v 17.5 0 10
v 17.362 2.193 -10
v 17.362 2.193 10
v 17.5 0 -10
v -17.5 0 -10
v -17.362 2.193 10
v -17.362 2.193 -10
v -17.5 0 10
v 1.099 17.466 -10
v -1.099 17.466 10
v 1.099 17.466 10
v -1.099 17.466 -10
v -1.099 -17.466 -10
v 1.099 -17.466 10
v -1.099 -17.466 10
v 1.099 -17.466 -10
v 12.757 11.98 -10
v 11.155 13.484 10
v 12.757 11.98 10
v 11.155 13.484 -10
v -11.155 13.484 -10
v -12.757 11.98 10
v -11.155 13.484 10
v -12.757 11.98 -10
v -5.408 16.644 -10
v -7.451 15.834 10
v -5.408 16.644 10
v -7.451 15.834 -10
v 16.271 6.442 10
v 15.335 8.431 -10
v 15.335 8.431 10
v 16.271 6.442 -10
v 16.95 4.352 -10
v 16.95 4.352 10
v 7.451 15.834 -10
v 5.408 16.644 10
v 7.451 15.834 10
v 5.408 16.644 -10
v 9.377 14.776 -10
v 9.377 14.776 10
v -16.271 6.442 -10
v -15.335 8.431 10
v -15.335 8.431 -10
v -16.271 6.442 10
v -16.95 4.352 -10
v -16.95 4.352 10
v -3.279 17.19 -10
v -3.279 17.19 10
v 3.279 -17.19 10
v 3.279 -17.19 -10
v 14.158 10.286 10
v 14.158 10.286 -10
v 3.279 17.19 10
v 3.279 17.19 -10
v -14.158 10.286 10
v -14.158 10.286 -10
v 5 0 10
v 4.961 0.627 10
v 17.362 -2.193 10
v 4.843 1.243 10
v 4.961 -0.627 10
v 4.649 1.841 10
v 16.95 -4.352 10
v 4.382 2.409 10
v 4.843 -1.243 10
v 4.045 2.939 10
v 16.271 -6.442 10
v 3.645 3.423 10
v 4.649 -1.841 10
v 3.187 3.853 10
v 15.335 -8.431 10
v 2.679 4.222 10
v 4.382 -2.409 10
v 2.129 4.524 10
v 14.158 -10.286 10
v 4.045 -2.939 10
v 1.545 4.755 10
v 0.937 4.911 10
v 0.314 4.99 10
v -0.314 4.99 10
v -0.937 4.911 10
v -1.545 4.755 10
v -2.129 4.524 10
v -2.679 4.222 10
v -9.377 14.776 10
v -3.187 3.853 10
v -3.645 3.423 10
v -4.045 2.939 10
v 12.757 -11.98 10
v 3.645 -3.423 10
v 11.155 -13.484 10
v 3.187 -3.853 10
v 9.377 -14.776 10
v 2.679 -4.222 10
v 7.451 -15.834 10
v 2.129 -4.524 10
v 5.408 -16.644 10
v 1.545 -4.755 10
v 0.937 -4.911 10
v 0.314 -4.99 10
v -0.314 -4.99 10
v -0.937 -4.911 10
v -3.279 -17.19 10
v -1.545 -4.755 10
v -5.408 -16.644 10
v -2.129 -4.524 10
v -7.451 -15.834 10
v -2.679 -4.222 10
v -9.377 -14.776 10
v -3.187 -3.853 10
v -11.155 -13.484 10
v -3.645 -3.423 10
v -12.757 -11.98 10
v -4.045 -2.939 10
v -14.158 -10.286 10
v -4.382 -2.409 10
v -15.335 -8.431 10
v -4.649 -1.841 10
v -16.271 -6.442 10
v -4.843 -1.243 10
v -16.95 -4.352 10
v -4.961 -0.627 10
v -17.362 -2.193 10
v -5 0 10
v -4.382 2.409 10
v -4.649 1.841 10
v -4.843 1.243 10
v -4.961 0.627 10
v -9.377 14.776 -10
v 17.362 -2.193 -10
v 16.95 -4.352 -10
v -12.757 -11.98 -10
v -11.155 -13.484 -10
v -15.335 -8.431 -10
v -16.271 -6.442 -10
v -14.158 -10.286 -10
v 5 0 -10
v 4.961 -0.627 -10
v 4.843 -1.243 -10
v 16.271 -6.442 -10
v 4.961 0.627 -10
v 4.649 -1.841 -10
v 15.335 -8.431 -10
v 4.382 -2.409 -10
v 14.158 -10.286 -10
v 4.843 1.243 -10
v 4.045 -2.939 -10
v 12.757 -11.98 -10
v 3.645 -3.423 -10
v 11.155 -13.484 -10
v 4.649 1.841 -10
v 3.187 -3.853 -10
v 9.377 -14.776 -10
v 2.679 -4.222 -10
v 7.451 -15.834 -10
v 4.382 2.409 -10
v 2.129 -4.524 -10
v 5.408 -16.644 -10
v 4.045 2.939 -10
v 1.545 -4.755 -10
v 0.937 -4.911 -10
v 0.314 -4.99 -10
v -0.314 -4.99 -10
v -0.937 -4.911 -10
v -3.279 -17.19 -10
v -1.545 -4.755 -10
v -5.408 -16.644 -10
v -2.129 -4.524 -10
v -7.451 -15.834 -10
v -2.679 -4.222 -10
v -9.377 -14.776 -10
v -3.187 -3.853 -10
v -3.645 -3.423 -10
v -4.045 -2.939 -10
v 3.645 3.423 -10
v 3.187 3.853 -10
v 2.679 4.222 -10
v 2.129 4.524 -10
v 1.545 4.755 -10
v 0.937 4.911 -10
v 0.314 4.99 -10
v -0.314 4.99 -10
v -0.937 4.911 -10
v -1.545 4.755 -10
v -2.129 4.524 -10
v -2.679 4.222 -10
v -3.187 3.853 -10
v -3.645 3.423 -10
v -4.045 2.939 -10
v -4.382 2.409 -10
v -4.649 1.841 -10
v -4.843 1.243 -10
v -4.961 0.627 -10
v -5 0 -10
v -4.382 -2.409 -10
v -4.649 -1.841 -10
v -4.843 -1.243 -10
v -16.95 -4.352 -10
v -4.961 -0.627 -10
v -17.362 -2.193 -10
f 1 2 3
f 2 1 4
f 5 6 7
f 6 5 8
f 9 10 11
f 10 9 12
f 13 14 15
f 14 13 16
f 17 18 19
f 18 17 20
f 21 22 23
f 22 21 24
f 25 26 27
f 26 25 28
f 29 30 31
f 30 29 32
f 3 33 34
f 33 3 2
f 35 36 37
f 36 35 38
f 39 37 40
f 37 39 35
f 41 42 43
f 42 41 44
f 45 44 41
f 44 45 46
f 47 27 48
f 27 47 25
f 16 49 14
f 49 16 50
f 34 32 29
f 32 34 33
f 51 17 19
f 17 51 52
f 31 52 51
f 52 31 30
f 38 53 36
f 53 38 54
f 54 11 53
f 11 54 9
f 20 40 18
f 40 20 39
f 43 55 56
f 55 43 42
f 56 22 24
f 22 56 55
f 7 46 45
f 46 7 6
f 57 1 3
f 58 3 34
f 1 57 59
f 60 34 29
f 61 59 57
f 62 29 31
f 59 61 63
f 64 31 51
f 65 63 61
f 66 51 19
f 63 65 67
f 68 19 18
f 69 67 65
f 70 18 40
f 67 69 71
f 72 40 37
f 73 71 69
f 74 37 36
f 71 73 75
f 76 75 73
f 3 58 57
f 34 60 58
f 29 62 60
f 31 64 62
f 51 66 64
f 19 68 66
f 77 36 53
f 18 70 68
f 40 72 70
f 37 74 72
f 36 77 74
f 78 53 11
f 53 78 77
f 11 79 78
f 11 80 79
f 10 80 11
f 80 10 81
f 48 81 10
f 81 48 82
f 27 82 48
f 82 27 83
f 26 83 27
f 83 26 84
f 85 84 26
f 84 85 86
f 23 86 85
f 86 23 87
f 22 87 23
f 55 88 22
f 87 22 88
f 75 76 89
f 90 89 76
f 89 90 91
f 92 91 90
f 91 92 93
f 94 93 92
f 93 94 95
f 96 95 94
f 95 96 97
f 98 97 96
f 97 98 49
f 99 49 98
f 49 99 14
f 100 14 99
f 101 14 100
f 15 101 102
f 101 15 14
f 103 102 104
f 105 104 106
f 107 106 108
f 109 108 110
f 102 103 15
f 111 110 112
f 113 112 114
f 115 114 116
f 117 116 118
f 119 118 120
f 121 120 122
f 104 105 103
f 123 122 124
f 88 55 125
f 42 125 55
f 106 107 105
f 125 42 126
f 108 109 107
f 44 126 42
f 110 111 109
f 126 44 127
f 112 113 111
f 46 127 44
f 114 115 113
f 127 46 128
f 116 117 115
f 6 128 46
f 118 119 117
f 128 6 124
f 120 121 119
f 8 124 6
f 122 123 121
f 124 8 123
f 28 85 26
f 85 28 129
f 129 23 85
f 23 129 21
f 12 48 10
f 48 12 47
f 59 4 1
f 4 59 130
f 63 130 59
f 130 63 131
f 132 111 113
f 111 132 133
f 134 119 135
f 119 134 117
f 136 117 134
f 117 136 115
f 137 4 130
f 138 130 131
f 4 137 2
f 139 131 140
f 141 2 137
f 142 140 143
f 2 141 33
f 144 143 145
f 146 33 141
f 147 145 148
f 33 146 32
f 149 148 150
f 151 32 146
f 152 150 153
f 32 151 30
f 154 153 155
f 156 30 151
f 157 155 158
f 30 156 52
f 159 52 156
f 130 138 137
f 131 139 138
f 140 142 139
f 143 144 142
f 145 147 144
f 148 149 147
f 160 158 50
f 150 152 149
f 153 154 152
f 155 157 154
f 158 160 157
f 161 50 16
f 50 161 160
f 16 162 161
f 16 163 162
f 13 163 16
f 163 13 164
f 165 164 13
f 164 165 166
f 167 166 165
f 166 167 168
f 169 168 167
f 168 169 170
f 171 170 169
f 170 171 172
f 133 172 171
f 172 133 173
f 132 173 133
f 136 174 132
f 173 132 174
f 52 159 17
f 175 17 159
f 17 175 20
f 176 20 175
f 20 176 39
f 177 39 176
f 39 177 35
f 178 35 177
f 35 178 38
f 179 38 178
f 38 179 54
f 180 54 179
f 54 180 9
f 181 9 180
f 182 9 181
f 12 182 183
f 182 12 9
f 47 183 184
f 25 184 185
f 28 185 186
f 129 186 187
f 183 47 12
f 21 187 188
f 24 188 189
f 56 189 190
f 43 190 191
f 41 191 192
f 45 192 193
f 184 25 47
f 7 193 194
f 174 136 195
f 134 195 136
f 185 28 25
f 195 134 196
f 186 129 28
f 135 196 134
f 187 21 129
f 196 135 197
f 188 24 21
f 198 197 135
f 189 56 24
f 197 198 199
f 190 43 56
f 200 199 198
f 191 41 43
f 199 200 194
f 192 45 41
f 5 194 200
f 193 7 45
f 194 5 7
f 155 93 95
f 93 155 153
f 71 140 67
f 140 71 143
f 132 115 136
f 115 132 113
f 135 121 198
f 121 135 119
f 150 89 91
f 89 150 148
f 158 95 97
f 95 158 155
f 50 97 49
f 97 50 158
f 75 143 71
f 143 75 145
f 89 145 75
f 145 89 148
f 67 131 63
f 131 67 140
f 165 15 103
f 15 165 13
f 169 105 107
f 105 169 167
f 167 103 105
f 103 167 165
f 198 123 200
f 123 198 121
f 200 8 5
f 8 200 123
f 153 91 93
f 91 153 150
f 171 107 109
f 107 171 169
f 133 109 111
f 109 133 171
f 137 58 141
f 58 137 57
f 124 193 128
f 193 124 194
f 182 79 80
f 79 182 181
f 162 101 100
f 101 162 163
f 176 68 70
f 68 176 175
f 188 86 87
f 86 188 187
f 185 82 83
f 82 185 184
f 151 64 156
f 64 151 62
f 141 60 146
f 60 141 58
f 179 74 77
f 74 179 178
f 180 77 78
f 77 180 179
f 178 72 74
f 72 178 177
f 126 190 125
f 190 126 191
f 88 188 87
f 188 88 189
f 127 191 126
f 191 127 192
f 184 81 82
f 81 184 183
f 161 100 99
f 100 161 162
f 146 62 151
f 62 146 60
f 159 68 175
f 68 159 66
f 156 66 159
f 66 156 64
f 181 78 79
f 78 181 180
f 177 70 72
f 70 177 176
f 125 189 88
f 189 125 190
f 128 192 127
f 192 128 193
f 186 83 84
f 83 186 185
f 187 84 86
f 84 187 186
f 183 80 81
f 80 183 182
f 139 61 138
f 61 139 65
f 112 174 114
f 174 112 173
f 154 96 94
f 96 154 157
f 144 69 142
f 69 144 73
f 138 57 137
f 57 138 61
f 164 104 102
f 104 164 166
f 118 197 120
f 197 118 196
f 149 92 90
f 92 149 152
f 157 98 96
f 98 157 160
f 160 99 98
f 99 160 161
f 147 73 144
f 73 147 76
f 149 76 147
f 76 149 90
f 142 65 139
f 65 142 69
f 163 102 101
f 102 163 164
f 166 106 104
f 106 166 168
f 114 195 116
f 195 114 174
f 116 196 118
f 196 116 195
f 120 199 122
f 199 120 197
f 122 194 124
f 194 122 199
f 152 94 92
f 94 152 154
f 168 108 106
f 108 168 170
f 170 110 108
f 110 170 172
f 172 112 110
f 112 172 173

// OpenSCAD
$fn = 50;


difference() {
	union() {
		translate(v = [0, 0, -10.0000000000]) {
			cylinder(h = 20, r = 17.5000000000);
		}
	}
	union() {
		translate(v = [0, 0, -100.0000000000]) {
			cylinder(h = 200, r = 5);
		}
	}
}
